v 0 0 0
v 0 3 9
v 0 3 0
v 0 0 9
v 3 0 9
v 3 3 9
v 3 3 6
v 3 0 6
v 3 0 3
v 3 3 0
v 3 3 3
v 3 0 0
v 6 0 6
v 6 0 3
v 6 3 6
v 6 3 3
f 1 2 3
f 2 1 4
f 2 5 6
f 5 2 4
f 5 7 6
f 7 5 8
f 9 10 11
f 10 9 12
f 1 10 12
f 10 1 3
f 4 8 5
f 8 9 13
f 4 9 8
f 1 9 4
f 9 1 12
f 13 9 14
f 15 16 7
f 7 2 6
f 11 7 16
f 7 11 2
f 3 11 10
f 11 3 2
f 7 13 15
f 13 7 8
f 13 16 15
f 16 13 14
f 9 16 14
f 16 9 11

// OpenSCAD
module bausteint(){
    union(){
        cube([3,3,9]);
        translate([3,0,3])
            cube([3,3,3]);
        }
}
bausteint();
